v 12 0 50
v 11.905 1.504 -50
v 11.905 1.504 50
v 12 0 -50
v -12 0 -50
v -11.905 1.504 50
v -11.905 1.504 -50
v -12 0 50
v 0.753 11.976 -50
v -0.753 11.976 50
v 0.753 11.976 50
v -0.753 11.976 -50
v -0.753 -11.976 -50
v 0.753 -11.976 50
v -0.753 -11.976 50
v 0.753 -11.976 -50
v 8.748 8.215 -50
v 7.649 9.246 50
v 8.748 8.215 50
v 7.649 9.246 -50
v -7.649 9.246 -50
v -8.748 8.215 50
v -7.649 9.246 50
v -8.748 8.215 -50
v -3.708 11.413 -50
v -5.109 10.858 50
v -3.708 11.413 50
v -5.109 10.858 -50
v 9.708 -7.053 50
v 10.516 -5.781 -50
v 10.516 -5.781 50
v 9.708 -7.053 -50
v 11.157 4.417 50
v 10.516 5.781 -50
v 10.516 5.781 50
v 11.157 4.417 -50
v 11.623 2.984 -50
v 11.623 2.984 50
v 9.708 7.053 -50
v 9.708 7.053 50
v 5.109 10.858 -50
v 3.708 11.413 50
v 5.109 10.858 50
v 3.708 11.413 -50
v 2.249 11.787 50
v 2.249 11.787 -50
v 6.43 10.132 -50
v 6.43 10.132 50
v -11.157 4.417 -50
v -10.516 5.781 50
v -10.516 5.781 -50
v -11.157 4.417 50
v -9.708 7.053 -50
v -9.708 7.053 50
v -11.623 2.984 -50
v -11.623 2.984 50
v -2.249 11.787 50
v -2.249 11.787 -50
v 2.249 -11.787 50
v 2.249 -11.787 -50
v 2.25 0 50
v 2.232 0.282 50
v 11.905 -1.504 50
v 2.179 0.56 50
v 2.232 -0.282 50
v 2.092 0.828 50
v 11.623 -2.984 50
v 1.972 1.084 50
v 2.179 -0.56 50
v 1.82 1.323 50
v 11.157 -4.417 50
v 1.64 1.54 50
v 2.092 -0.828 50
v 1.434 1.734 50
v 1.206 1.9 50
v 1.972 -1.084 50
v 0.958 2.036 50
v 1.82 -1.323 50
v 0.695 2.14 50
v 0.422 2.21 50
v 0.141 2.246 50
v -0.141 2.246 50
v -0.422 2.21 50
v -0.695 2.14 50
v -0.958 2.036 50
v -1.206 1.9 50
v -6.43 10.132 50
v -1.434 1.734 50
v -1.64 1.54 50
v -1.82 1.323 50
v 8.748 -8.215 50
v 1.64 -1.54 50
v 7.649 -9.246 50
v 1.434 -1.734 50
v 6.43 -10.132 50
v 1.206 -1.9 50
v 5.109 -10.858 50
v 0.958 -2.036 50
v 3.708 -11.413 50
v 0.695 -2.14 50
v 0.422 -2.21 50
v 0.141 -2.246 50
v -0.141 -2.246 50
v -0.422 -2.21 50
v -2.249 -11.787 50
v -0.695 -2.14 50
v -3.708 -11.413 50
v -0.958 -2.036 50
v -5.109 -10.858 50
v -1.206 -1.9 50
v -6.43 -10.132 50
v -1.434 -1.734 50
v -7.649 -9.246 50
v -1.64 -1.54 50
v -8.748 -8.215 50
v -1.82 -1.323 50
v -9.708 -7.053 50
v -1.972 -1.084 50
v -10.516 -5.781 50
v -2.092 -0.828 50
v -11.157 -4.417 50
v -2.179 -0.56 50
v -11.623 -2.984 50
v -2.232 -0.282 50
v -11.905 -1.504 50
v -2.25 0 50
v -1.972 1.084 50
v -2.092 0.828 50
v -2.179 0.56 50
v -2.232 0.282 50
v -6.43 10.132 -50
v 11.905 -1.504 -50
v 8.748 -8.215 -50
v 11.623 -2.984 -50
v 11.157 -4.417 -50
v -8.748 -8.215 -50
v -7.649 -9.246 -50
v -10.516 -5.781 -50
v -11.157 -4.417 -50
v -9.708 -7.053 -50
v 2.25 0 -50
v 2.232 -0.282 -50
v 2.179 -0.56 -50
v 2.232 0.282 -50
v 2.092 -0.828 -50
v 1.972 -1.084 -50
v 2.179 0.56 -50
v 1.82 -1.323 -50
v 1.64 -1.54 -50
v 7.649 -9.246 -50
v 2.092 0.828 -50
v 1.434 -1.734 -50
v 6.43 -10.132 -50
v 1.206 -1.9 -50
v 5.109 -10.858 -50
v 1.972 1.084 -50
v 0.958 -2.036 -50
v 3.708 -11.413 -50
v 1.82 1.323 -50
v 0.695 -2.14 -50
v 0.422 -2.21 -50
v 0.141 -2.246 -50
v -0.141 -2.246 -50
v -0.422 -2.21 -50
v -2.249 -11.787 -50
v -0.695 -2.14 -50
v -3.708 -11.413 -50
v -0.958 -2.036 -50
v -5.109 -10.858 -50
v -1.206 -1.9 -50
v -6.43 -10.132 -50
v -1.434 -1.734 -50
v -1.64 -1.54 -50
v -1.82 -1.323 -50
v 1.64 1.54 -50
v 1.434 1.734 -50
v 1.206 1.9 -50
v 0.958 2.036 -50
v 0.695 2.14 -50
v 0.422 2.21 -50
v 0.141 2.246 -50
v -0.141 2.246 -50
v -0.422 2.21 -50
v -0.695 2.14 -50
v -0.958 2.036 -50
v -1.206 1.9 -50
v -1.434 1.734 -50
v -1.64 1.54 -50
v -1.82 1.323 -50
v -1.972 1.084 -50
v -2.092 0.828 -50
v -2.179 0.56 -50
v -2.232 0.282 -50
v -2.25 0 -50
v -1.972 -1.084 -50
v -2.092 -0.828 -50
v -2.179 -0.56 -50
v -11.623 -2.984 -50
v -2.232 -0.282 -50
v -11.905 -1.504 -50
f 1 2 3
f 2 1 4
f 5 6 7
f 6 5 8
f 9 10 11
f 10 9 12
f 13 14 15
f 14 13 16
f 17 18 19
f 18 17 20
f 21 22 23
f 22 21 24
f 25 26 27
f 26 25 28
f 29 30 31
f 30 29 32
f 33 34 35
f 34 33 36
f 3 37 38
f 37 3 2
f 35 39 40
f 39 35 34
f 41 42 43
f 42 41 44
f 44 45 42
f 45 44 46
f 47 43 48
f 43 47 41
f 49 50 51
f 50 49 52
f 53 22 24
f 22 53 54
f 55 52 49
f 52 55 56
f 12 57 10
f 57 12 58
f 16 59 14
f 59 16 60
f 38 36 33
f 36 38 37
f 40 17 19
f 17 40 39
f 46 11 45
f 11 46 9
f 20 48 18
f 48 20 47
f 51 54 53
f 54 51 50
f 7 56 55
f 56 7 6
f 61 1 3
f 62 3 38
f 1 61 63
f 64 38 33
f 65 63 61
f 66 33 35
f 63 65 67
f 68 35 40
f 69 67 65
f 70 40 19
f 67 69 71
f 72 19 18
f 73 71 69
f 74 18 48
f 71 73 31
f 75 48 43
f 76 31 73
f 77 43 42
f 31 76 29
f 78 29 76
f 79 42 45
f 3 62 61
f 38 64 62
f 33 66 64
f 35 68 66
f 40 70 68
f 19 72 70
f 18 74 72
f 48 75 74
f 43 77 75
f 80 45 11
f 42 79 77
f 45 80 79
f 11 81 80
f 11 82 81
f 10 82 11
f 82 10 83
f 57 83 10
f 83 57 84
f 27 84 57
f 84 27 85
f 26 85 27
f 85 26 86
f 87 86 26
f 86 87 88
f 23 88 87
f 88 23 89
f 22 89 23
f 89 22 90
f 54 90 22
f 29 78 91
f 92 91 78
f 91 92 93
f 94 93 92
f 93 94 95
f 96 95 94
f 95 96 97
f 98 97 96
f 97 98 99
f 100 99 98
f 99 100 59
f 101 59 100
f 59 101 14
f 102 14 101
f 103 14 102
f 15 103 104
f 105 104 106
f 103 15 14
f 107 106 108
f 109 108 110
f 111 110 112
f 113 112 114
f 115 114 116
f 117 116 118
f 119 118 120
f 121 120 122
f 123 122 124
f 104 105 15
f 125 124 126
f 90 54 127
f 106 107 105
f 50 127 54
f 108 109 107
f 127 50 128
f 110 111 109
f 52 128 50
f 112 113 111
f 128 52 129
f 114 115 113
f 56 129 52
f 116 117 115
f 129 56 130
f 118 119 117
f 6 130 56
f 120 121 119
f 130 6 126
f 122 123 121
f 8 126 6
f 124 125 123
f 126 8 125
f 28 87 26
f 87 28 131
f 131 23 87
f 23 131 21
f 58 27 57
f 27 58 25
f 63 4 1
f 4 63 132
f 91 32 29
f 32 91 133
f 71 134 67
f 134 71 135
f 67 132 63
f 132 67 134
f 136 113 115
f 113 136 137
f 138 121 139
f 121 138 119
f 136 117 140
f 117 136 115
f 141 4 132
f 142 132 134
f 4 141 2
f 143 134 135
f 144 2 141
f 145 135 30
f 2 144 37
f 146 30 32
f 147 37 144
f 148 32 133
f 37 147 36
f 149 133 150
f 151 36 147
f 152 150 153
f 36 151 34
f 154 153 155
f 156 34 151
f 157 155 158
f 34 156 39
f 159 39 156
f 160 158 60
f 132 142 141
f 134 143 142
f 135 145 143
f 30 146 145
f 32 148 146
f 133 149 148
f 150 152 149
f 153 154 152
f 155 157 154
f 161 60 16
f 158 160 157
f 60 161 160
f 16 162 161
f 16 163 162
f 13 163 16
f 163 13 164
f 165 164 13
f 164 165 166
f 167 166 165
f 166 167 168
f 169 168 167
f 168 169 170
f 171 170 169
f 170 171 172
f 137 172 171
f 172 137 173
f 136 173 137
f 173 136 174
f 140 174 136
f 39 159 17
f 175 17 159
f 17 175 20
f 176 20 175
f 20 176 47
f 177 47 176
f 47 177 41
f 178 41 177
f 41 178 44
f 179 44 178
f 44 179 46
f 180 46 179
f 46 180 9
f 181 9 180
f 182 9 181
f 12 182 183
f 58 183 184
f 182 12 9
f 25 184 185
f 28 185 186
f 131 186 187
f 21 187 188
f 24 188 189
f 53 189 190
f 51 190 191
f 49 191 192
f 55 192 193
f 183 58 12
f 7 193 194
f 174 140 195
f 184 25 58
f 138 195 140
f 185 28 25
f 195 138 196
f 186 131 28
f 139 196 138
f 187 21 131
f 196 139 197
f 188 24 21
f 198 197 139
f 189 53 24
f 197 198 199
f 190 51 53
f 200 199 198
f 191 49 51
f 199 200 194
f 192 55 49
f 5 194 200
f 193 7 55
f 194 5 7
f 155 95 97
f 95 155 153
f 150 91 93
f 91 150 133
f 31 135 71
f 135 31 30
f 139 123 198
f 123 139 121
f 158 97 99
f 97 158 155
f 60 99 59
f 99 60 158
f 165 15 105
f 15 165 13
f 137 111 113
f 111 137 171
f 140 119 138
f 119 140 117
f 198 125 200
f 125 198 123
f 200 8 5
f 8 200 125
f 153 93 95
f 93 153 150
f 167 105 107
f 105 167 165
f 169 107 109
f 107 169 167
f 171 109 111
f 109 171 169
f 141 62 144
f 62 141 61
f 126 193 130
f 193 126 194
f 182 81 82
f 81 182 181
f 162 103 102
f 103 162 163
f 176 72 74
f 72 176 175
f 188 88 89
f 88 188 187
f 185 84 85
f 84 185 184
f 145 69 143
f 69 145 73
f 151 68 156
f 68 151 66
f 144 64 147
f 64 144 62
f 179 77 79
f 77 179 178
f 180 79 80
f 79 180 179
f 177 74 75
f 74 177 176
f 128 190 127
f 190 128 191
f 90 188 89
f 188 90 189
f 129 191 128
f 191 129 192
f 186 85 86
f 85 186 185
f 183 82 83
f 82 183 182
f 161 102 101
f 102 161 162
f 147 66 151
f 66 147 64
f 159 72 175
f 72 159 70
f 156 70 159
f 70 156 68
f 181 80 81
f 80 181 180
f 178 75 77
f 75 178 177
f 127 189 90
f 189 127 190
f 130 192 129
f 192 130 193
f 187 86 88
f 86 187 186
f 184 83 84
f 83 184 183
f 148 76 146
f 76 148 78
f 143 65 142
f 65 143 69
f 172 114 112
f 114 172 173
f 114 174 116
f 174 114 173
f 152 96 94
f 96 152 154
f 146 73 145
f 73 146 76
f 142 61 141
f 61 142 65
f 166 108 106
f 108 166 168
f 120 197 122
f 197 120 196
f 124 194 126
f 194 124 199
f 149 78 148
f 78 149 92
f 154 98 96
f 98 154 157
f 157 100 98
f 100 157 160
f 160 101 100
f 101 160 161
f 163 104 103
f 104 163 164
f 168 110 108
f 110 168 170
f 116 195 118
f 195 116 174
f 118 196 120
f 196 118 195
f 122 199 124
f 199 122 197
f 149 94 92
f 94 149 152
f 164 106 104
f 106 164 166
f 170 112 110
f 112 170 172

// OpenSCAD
$fn = 50;


difference() {
	union() {
		translate(v = [0, 0, -50.0000000000]) {
			cylinder(h = 100, r = 12.0000000000);
		}
	}
	union() {
		translate(v = [0, 0, -100.0000000000]) {
			cylinder(h = 200, r = 2.2500000000);
		}
	}
}
